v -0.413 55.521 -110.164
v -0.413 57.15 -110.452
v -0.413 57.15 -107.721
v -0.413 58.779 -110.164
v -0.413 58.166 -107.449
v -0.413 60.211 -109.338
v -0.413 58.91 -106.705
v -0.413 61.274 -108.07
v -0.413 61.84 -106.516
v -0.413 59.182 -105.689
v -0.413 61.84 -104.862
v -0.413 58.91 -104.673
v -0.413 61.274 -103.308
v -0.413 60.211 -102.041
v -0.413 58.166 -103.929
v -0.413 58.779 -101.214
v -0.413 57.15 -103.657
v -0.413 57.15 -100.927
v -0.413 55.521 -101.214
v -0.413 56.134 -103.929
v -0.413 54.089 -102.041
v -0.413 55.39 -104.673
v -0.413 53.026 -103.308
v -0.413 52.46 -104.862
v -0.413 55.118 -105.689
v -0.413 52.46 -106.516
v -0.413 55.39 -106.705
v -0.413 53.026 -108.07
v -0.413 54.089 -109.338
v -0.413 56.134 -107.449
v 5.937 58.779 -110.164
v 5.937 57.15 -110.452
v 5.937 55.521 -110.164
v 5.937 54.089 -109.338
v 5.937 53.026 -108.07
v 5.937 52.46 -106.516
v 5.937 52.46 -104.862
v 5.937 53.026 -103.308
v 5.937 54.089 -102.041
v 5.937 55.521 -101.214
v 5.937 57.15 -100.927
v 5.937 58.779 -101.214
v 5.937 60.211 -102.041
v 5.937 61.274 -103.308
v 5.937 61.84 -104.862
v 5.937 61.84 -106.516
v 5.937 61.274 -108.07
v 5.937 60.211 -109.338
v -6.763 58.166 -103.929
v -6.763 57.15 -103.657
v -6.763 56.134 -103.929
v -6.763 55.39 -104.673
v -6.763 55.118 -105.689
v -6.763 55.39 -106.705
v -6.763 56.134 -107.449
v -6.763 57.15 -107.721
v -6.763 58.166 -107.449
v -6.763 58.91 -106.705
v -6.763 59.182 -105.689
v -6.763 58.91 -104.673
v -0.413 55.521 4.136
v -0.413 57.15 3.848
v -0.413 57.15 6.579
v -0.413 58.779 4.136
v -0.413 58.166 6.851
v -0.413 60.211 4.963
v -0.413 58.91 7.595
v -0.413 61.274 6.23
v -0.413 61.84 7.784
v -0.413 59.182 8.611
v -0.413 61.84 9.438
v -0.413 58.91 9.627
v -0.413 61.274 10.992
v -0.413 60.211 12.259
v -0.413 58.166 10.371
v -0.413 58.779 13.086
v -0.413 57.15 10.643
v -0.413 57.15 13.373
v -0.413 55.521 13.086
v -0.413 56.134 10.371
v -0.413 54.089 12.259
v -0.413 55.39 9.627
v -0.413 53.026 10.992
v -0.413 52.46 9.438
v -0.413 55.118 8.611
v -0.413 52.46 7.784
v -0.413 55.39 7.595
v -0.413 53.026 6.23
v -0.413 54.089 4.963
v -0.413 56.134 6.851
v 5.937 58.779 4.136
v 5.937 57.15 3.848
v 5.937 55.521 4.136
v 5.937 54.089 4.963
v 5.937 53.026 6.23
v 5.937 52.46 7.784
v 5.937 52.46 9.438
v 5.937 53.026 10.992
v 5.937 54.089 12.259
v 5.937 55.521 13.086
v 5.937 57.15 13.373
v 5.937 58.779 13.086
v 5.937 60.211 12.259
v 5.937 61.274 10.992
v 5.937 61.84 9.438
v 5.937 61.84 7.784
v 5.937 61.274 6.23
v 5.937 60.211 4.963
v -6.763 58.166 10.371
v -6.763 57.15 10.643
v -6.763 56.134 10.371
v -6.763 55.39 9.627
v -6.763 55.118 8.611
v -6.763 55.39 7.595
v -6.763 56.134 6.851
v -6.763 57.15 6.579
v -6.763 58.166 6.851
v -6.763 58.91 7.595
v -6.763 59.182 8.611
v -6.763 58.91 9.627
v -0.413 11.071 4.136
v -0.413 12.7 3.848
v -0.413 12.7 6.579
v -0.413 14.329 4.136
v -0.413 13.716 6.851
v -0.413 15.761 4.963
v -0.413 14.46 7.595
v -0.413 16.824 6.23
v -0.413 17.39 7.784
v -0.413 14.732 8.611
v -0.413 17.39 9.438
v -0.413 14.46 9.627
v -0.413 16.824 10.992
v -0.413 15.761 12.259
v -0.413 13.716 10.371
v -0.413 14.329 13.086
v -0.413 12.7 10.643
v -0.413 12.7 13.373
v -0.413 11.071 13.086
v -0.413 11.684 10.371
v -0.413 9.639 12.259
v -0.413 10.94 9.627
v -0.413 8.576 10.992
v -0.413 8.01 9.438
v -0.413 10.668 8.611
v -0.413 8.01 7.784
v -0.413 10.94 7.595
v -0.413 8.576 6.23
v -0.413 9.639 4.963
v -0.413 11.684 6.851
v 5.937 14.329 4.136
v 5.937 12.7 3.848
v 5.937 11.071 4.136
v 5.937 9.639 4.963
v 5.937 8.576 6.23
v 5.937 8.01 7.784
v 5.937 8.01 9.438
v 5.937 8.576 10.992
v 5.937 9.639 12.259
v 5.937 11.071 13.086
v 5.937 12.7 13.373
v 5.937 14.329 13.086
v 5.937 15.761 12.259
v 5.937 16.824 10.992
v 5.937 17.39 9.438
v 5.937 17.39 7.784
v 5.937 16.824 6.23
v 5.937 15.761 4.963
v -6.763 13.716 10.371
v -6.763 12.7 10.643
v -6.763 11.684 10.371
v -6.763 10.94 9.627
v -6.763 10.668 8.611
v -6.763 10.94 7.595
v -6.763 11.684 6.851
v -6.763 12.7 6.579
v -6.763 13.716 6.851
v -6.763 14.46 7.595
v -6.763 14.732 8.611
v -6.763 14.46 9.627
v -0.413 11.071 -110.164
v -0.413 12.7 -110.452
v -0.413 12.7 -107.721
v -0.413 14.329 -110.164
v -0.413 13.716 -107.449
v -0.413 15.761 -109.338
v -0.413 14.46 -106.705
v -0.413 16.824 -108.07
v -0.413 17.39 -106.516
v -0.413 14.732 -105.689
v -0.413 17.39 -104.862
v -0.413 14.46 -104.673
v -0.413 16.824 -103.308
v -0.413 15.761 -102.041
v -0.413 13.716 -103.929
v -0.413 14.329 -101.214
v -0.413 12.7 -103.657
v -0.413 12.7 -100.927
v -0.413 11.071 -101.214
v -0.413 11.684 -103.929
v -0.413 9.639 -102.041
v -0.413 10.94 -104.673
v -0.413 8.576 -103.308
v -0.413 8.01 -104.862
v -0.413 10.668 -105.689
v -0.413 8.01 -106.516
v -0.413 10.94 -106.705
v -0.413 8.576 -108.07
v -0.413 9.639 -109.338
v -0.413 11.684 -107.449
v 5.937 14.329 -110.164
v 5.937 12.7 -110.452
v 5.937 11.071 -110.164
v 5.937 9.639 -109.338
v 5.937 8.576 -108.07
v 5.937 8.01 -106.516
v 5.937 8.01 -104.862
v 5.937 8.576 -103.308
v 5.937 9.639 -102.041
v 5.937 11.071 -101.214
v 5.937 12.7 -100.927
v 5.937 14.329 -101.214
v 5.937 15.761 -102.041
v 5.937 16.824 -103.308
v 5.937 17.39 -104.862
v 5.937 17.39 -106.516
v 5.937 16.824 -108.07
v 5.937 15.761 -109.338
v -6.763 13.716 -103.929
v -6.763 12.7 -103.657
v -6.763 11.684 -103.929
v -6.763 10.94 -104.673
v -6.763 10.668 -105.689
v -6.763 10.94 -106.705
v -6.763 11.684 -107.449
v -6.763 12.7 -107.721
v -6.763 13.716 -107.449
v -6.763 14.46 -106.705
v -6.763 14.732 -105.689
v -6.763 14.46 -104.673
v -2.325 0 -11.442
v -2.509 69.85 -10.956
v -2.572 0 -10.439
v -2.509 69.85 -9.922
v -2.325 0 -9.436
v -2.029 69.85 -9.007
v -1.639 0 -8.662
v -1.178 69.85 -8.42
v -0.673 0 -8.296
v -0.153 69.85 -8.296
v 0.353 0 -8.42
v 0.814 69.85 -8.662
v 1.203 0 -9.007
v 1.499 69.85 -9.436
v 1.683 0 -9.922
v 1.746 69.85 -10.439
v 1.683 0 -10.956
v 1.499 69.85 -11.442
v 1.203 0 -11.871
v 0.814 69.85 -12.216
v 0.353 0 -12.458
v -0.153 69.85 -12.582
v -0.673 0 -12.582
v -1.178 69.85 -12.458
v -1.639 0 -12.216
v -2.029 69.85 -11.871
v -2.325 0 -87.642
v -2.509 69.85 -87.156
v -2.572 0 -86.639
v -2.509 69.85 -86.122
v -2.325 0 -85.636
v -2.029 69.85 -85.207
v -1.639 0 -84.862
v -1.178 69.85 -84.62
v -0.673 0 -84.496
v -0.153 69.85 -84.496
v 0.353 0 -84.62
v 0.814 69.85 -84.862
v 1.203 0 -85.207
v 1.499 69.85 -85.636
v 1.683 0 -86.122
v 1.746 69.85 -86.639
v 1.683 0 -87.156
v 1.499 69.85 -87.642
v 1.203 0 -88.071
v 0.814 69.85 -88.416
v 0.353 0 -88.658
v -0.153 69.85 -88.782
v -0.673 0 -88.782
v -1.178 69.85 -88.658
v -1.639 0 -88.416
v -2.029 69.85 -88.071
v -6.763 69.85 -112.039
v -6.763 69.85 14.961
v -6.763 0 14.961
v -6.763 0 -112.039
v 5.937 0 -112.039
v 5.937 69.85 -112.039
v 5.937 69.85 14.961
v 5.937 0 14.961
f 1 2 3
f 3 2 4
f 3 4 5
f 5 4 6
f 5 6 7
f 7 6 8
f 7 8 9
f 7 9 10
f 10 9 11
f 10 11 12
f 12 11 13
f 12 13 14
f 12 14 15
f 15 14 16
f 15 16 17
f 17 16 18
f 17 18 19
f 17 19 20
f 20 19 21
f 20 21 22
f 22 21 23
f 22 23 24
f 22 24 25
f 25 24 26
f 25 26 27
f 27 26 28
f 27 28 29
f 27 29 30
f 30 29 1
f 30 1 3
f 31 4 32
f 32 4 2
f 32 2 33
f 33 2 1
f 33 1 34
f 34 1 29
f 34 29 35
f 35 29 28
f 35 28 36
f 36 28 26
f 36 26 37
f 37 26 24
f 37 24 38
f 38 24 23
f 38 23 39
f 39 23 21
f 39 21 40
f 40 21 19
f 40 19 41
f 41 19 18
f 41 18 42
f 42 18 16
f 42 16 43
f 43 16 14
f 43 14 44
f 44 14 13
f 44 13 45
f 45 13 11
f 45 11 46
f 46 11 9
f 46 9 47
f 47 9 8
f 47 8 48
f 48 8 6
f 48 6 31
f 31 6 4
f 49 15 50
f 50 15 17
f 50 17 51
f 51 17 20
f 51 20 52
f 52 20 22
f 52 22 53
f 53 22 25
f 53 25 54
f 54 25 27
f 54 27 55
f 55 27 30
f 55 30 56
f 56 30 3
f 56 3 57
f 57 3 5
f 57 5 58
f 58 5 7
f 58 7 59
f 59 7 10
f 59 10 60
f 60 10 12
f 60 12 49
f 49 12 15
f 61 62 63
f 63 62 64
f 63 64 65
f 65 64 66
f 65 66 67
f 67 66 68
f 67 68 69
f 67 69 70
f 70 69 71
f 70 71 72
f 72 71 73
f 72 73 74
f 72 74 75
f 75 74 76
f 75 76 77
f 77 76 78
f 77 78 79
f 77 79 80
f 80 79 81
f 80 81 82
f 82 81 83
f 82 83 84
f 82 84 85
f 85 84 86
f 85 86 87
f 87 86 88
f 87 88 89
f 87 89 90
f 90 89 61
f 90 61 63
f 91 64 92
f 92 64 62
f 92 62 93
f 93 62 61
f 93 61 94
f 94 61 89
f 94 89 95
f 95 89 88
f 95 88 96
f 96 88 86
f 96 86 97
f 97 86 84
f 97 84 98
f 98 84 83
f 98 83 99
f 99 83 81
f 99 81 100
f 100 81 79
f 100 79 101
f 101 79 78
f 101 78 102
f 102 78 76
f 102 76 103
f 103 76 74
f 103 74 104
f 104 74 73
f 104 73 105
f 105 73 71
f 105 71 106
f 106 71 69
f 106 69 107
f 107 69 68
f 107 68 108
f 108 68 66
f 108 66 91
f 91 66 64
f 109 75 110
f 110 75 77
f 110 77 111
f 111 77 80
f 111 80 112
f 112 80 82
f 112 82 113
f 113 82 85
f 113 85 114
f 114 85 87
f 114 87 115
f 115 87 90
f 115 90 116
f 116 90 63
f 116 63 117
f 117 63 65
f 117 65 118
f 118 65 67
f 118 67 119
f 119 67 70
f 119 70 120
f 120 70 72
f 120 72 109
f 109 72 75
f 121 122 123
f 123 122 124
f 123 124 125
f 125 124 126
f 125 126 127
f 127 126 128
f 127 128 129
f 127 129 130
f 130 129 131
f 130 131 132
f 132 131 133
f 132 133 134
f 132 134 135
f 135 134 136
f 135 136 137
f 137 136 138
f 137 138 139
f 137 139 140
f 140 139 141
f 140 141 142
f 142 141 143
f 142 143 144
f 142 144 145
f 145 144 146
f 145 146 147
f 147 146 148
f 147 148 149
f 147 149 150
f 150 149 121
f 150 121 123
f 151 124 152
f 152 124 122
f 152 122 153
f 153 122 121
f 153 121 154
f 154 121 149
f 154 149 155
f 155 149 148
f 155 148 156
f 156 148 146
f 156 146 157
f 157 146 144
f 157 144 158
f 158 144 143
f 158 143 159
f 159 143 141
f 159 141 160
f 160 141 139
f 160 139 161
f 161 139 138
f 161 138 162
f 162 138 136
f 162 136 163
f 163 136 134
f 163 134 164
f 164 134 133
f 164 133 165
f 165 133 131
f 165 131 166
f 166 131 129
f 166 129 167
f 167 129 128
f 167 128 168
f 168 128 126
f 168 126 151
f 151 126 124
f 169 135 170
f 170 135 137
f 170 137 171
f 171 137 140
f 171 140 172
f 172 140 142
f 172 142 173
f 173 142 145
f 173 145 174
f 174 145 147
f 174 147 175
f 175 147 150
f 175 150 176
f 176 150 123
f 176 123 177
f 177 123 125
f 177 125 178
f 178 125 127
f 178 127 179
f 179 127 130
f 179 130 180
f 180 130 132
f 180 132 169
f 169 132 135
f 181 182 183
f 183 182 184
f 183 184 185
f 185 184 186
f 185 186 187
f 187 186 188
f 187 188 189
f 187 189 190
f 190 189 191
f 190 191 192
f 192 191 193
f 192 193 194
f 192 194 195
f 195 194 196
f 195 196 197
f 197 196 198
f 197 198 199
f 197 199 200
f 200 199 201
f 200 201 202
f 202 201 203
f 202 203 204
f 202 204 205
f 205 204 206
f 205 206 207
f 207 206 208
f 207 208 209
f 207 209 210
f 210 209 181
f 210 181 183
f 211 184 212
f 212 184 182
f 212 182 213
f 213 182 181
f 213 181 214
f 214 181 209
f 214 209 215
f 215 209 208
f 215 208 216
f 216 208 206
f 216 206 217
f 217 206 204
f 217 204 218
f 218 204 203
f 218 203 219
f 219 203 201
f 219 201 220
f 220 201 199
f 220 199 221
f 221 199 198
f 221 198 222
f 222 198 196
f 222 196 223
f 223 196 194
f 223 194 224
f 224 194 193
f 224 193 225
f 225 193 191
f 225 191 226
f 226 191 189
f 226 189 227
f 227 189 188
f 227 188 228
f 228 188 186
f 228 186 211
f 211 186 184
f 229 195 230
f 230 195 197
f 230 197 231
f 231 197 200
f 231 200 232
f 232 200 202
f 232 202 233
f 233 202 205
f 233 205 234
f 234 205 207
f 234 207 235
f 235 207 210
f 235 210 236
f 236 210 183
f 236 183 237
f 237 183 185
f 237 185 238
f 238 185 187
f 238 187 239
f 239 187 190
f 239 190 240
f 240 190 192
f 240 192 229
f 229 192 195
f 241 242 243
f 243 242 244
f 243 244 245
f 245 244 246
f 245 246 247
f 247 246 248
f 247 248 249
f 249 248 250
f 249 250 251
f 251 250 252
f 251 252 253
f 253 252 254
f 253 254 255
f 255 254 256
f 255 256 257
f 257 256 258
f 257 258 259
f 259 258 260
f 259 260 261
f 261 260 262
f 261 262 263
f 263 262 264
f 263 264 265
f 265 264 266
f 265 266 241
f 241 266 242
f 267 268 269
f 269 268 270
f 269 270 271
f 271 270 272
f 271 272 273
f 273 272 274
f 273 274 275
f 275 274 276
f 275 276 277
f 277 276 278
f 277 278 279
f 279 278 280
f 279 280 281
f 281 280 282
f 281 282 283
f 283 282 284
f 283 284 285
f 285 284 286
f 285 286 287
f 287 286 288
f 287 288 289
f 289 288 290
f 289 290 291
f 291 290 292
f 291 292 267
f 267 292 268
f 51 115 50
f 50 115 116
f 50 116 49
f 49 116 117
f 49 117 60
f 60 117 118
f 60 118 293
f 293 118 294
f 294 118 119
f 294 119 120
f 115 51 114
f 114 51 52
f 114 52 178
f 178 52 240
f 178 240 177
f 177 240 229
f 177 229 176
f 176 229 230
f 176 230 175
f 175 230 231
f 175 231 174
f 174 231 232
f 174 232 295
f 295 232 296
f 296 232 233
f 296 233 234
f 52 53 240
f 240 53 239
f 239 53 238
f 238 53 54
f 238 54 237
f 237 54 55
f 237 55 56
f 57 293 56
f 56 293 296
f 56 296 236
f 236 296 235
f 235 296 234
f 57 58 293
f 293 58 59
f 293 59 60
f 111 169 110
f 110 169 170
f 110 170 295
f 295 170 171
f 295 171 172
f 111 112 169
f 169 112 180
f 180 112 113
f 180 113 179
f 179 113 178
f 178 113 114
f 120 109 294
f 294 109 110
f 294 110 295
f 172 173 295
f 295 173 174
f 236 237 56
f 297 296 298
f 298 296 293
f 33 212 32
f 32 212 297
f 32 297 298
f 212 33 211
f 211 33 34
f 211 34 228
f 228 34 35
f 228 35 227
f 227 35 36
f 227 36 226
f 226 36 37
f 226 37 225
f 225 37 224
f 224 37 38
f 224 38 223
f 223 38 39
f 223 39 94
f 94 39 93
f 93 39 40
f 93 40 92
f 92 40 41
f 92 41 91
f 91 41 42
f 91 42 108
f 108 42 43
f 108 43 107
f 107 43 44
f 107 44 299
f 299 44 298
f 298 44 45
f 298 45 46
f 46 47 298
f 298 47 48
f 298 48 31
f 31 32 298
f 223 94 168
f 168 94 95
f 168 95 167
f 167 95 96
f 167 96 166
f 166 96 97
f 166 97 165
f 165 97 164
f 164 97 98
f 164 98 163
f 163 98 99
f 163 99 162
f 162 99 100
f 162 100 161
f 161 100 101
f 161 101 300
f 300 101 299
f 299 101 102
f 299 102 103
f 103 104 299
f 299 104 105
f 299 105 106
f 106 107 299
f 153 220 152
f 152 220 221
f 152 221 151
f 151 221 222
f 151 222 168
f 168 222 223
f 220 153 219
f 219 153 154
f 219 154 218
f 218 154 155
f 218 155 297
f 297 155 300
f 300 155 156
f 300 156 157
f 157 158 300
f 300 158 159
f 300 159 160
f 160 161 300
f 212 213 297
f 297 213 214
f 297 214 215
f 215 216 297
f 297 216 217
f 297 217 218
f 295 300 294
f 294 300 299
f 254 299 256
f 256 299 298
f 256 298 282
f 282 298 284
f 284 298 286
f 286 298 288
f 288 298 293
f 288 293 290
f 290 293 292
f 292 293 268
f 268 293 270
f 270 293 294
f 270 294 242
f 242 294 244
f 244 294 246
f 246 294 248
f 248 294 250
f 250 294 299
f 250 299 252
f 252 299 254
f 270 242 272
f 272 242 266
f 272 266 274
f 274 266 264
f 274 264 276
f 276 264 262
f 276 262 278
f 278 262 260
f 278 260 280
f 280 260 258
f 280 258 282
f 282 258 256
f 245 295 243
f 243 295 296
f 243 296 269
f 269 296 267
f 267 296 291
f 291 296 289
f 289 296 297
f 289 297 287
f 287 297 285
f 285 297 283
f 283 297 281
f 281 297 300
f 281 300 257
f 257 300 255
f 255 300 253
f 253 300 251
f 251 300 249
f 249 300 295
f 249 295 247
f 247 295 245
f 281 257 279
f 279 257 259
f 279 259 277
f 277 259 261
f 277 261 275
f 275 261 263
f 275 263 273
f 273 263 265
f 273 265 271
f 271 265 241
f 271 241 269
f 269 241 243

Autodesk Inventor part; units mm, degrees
ref_plane "YZ Plane" through (0, 0, 0) normal (1, 0, 0) x (0, 1, 0)
ref_plane "XZ Plane" through (0, 0, 0) normal (0, 1, 0) x (-1, 0, 0)
ref_plane "XY Plane" through (0, 0, 0) normal (0, 0, 1) x (1, 0, 0)
sketch "Sketch1" plane through (0, 0, 0) normal (0, 1, 0) x (-1, 0, 0)
  line L0 (6.7628, 14.9608) -> (-5.9372, 14.9608)
  line L1 (-5.9372, 14.9608) -> (-5.9372, -112.0392)
  line L2 (-5.9372, -112.0392) -> (6.7628, -112.0392)
  line L3 (6.7628, -112.0392) -> (6.7628, 14.9608)
  point P0 (0, 0)
  dimension "d0" = 12.7
  dimension "d1" = 127
extrude "Extrusion1" add sketch "Sketch1" along normal blind 69.85
sketch "Sketch2" plane through (0, 69.85, 0) normal (0, 1, 0) x (1, 0, 0)
  line L0 (5.9372, 112.0392) -> (-6.7628, 112.0392) projected
  line L1 (5.9372, -14.9608) -> (5.9372, 112.0392) projected
  line L2 (-6.7628, -14.9608) -> (5.9372, -14.9608) projected
  point P0 (0, 0)
  point P1 (-0.4128, 10.4392)
  point P2 (-0.4128, 86.6392)
  dimension "d4" = 25.4
  dimension "d5" = 6.35
  dimension "d6" = 25.4
  dimension "d7" = 6.35
hole "Hole1" at (-0.4128, 69.85, -10.4392) at (-0.4128, 69.85, -86.6392) direction (0, -1, 0) diameter 4.318 end through all
sketch "Sketch3" plane through (5.9372, 0, 14.9608) normal (1, 0, 0) x (0, 0, -1)
  line L0 (0, 0) -> (0, 69.85) projected
  line L1 (0, 0) -> (127, 0) projected
  line L2 (0, 69.85) -> (127, 69.85) projected
  line L3 (127, 0) -> (127, 69.85) projected
  point P0 (14.9608, 0)
  point P1 (6.35, 57.15)
  point P2 (6.35, 12.7)
  point P3 (120.65, 57.15)
  point P4 (120.65, 12.7)
  dimension "d15" = 6.35
  dimension "d16" = 6.35
  dimension "d17" = 12.7
  dimension "d18" = 12.7
  dimension "d19" = 12.7
  dimension "d20" = 6.35
  dimension "d21" = 6.35
  dimension "d22" = 12.7
hole "Hole2" at (5.9372, 57.15, 8.6108) at (5.9372, 12.7, 8.6108) at (5.9372, 57.15, -105.6892) at (5.9372, 12.7, -105.6892) direction (-1, 0, 0) diameter 4.064 end through all counterbore diameter 9.525 counterbore depth 6.35
properties part number "BatteryFrontPlate"
